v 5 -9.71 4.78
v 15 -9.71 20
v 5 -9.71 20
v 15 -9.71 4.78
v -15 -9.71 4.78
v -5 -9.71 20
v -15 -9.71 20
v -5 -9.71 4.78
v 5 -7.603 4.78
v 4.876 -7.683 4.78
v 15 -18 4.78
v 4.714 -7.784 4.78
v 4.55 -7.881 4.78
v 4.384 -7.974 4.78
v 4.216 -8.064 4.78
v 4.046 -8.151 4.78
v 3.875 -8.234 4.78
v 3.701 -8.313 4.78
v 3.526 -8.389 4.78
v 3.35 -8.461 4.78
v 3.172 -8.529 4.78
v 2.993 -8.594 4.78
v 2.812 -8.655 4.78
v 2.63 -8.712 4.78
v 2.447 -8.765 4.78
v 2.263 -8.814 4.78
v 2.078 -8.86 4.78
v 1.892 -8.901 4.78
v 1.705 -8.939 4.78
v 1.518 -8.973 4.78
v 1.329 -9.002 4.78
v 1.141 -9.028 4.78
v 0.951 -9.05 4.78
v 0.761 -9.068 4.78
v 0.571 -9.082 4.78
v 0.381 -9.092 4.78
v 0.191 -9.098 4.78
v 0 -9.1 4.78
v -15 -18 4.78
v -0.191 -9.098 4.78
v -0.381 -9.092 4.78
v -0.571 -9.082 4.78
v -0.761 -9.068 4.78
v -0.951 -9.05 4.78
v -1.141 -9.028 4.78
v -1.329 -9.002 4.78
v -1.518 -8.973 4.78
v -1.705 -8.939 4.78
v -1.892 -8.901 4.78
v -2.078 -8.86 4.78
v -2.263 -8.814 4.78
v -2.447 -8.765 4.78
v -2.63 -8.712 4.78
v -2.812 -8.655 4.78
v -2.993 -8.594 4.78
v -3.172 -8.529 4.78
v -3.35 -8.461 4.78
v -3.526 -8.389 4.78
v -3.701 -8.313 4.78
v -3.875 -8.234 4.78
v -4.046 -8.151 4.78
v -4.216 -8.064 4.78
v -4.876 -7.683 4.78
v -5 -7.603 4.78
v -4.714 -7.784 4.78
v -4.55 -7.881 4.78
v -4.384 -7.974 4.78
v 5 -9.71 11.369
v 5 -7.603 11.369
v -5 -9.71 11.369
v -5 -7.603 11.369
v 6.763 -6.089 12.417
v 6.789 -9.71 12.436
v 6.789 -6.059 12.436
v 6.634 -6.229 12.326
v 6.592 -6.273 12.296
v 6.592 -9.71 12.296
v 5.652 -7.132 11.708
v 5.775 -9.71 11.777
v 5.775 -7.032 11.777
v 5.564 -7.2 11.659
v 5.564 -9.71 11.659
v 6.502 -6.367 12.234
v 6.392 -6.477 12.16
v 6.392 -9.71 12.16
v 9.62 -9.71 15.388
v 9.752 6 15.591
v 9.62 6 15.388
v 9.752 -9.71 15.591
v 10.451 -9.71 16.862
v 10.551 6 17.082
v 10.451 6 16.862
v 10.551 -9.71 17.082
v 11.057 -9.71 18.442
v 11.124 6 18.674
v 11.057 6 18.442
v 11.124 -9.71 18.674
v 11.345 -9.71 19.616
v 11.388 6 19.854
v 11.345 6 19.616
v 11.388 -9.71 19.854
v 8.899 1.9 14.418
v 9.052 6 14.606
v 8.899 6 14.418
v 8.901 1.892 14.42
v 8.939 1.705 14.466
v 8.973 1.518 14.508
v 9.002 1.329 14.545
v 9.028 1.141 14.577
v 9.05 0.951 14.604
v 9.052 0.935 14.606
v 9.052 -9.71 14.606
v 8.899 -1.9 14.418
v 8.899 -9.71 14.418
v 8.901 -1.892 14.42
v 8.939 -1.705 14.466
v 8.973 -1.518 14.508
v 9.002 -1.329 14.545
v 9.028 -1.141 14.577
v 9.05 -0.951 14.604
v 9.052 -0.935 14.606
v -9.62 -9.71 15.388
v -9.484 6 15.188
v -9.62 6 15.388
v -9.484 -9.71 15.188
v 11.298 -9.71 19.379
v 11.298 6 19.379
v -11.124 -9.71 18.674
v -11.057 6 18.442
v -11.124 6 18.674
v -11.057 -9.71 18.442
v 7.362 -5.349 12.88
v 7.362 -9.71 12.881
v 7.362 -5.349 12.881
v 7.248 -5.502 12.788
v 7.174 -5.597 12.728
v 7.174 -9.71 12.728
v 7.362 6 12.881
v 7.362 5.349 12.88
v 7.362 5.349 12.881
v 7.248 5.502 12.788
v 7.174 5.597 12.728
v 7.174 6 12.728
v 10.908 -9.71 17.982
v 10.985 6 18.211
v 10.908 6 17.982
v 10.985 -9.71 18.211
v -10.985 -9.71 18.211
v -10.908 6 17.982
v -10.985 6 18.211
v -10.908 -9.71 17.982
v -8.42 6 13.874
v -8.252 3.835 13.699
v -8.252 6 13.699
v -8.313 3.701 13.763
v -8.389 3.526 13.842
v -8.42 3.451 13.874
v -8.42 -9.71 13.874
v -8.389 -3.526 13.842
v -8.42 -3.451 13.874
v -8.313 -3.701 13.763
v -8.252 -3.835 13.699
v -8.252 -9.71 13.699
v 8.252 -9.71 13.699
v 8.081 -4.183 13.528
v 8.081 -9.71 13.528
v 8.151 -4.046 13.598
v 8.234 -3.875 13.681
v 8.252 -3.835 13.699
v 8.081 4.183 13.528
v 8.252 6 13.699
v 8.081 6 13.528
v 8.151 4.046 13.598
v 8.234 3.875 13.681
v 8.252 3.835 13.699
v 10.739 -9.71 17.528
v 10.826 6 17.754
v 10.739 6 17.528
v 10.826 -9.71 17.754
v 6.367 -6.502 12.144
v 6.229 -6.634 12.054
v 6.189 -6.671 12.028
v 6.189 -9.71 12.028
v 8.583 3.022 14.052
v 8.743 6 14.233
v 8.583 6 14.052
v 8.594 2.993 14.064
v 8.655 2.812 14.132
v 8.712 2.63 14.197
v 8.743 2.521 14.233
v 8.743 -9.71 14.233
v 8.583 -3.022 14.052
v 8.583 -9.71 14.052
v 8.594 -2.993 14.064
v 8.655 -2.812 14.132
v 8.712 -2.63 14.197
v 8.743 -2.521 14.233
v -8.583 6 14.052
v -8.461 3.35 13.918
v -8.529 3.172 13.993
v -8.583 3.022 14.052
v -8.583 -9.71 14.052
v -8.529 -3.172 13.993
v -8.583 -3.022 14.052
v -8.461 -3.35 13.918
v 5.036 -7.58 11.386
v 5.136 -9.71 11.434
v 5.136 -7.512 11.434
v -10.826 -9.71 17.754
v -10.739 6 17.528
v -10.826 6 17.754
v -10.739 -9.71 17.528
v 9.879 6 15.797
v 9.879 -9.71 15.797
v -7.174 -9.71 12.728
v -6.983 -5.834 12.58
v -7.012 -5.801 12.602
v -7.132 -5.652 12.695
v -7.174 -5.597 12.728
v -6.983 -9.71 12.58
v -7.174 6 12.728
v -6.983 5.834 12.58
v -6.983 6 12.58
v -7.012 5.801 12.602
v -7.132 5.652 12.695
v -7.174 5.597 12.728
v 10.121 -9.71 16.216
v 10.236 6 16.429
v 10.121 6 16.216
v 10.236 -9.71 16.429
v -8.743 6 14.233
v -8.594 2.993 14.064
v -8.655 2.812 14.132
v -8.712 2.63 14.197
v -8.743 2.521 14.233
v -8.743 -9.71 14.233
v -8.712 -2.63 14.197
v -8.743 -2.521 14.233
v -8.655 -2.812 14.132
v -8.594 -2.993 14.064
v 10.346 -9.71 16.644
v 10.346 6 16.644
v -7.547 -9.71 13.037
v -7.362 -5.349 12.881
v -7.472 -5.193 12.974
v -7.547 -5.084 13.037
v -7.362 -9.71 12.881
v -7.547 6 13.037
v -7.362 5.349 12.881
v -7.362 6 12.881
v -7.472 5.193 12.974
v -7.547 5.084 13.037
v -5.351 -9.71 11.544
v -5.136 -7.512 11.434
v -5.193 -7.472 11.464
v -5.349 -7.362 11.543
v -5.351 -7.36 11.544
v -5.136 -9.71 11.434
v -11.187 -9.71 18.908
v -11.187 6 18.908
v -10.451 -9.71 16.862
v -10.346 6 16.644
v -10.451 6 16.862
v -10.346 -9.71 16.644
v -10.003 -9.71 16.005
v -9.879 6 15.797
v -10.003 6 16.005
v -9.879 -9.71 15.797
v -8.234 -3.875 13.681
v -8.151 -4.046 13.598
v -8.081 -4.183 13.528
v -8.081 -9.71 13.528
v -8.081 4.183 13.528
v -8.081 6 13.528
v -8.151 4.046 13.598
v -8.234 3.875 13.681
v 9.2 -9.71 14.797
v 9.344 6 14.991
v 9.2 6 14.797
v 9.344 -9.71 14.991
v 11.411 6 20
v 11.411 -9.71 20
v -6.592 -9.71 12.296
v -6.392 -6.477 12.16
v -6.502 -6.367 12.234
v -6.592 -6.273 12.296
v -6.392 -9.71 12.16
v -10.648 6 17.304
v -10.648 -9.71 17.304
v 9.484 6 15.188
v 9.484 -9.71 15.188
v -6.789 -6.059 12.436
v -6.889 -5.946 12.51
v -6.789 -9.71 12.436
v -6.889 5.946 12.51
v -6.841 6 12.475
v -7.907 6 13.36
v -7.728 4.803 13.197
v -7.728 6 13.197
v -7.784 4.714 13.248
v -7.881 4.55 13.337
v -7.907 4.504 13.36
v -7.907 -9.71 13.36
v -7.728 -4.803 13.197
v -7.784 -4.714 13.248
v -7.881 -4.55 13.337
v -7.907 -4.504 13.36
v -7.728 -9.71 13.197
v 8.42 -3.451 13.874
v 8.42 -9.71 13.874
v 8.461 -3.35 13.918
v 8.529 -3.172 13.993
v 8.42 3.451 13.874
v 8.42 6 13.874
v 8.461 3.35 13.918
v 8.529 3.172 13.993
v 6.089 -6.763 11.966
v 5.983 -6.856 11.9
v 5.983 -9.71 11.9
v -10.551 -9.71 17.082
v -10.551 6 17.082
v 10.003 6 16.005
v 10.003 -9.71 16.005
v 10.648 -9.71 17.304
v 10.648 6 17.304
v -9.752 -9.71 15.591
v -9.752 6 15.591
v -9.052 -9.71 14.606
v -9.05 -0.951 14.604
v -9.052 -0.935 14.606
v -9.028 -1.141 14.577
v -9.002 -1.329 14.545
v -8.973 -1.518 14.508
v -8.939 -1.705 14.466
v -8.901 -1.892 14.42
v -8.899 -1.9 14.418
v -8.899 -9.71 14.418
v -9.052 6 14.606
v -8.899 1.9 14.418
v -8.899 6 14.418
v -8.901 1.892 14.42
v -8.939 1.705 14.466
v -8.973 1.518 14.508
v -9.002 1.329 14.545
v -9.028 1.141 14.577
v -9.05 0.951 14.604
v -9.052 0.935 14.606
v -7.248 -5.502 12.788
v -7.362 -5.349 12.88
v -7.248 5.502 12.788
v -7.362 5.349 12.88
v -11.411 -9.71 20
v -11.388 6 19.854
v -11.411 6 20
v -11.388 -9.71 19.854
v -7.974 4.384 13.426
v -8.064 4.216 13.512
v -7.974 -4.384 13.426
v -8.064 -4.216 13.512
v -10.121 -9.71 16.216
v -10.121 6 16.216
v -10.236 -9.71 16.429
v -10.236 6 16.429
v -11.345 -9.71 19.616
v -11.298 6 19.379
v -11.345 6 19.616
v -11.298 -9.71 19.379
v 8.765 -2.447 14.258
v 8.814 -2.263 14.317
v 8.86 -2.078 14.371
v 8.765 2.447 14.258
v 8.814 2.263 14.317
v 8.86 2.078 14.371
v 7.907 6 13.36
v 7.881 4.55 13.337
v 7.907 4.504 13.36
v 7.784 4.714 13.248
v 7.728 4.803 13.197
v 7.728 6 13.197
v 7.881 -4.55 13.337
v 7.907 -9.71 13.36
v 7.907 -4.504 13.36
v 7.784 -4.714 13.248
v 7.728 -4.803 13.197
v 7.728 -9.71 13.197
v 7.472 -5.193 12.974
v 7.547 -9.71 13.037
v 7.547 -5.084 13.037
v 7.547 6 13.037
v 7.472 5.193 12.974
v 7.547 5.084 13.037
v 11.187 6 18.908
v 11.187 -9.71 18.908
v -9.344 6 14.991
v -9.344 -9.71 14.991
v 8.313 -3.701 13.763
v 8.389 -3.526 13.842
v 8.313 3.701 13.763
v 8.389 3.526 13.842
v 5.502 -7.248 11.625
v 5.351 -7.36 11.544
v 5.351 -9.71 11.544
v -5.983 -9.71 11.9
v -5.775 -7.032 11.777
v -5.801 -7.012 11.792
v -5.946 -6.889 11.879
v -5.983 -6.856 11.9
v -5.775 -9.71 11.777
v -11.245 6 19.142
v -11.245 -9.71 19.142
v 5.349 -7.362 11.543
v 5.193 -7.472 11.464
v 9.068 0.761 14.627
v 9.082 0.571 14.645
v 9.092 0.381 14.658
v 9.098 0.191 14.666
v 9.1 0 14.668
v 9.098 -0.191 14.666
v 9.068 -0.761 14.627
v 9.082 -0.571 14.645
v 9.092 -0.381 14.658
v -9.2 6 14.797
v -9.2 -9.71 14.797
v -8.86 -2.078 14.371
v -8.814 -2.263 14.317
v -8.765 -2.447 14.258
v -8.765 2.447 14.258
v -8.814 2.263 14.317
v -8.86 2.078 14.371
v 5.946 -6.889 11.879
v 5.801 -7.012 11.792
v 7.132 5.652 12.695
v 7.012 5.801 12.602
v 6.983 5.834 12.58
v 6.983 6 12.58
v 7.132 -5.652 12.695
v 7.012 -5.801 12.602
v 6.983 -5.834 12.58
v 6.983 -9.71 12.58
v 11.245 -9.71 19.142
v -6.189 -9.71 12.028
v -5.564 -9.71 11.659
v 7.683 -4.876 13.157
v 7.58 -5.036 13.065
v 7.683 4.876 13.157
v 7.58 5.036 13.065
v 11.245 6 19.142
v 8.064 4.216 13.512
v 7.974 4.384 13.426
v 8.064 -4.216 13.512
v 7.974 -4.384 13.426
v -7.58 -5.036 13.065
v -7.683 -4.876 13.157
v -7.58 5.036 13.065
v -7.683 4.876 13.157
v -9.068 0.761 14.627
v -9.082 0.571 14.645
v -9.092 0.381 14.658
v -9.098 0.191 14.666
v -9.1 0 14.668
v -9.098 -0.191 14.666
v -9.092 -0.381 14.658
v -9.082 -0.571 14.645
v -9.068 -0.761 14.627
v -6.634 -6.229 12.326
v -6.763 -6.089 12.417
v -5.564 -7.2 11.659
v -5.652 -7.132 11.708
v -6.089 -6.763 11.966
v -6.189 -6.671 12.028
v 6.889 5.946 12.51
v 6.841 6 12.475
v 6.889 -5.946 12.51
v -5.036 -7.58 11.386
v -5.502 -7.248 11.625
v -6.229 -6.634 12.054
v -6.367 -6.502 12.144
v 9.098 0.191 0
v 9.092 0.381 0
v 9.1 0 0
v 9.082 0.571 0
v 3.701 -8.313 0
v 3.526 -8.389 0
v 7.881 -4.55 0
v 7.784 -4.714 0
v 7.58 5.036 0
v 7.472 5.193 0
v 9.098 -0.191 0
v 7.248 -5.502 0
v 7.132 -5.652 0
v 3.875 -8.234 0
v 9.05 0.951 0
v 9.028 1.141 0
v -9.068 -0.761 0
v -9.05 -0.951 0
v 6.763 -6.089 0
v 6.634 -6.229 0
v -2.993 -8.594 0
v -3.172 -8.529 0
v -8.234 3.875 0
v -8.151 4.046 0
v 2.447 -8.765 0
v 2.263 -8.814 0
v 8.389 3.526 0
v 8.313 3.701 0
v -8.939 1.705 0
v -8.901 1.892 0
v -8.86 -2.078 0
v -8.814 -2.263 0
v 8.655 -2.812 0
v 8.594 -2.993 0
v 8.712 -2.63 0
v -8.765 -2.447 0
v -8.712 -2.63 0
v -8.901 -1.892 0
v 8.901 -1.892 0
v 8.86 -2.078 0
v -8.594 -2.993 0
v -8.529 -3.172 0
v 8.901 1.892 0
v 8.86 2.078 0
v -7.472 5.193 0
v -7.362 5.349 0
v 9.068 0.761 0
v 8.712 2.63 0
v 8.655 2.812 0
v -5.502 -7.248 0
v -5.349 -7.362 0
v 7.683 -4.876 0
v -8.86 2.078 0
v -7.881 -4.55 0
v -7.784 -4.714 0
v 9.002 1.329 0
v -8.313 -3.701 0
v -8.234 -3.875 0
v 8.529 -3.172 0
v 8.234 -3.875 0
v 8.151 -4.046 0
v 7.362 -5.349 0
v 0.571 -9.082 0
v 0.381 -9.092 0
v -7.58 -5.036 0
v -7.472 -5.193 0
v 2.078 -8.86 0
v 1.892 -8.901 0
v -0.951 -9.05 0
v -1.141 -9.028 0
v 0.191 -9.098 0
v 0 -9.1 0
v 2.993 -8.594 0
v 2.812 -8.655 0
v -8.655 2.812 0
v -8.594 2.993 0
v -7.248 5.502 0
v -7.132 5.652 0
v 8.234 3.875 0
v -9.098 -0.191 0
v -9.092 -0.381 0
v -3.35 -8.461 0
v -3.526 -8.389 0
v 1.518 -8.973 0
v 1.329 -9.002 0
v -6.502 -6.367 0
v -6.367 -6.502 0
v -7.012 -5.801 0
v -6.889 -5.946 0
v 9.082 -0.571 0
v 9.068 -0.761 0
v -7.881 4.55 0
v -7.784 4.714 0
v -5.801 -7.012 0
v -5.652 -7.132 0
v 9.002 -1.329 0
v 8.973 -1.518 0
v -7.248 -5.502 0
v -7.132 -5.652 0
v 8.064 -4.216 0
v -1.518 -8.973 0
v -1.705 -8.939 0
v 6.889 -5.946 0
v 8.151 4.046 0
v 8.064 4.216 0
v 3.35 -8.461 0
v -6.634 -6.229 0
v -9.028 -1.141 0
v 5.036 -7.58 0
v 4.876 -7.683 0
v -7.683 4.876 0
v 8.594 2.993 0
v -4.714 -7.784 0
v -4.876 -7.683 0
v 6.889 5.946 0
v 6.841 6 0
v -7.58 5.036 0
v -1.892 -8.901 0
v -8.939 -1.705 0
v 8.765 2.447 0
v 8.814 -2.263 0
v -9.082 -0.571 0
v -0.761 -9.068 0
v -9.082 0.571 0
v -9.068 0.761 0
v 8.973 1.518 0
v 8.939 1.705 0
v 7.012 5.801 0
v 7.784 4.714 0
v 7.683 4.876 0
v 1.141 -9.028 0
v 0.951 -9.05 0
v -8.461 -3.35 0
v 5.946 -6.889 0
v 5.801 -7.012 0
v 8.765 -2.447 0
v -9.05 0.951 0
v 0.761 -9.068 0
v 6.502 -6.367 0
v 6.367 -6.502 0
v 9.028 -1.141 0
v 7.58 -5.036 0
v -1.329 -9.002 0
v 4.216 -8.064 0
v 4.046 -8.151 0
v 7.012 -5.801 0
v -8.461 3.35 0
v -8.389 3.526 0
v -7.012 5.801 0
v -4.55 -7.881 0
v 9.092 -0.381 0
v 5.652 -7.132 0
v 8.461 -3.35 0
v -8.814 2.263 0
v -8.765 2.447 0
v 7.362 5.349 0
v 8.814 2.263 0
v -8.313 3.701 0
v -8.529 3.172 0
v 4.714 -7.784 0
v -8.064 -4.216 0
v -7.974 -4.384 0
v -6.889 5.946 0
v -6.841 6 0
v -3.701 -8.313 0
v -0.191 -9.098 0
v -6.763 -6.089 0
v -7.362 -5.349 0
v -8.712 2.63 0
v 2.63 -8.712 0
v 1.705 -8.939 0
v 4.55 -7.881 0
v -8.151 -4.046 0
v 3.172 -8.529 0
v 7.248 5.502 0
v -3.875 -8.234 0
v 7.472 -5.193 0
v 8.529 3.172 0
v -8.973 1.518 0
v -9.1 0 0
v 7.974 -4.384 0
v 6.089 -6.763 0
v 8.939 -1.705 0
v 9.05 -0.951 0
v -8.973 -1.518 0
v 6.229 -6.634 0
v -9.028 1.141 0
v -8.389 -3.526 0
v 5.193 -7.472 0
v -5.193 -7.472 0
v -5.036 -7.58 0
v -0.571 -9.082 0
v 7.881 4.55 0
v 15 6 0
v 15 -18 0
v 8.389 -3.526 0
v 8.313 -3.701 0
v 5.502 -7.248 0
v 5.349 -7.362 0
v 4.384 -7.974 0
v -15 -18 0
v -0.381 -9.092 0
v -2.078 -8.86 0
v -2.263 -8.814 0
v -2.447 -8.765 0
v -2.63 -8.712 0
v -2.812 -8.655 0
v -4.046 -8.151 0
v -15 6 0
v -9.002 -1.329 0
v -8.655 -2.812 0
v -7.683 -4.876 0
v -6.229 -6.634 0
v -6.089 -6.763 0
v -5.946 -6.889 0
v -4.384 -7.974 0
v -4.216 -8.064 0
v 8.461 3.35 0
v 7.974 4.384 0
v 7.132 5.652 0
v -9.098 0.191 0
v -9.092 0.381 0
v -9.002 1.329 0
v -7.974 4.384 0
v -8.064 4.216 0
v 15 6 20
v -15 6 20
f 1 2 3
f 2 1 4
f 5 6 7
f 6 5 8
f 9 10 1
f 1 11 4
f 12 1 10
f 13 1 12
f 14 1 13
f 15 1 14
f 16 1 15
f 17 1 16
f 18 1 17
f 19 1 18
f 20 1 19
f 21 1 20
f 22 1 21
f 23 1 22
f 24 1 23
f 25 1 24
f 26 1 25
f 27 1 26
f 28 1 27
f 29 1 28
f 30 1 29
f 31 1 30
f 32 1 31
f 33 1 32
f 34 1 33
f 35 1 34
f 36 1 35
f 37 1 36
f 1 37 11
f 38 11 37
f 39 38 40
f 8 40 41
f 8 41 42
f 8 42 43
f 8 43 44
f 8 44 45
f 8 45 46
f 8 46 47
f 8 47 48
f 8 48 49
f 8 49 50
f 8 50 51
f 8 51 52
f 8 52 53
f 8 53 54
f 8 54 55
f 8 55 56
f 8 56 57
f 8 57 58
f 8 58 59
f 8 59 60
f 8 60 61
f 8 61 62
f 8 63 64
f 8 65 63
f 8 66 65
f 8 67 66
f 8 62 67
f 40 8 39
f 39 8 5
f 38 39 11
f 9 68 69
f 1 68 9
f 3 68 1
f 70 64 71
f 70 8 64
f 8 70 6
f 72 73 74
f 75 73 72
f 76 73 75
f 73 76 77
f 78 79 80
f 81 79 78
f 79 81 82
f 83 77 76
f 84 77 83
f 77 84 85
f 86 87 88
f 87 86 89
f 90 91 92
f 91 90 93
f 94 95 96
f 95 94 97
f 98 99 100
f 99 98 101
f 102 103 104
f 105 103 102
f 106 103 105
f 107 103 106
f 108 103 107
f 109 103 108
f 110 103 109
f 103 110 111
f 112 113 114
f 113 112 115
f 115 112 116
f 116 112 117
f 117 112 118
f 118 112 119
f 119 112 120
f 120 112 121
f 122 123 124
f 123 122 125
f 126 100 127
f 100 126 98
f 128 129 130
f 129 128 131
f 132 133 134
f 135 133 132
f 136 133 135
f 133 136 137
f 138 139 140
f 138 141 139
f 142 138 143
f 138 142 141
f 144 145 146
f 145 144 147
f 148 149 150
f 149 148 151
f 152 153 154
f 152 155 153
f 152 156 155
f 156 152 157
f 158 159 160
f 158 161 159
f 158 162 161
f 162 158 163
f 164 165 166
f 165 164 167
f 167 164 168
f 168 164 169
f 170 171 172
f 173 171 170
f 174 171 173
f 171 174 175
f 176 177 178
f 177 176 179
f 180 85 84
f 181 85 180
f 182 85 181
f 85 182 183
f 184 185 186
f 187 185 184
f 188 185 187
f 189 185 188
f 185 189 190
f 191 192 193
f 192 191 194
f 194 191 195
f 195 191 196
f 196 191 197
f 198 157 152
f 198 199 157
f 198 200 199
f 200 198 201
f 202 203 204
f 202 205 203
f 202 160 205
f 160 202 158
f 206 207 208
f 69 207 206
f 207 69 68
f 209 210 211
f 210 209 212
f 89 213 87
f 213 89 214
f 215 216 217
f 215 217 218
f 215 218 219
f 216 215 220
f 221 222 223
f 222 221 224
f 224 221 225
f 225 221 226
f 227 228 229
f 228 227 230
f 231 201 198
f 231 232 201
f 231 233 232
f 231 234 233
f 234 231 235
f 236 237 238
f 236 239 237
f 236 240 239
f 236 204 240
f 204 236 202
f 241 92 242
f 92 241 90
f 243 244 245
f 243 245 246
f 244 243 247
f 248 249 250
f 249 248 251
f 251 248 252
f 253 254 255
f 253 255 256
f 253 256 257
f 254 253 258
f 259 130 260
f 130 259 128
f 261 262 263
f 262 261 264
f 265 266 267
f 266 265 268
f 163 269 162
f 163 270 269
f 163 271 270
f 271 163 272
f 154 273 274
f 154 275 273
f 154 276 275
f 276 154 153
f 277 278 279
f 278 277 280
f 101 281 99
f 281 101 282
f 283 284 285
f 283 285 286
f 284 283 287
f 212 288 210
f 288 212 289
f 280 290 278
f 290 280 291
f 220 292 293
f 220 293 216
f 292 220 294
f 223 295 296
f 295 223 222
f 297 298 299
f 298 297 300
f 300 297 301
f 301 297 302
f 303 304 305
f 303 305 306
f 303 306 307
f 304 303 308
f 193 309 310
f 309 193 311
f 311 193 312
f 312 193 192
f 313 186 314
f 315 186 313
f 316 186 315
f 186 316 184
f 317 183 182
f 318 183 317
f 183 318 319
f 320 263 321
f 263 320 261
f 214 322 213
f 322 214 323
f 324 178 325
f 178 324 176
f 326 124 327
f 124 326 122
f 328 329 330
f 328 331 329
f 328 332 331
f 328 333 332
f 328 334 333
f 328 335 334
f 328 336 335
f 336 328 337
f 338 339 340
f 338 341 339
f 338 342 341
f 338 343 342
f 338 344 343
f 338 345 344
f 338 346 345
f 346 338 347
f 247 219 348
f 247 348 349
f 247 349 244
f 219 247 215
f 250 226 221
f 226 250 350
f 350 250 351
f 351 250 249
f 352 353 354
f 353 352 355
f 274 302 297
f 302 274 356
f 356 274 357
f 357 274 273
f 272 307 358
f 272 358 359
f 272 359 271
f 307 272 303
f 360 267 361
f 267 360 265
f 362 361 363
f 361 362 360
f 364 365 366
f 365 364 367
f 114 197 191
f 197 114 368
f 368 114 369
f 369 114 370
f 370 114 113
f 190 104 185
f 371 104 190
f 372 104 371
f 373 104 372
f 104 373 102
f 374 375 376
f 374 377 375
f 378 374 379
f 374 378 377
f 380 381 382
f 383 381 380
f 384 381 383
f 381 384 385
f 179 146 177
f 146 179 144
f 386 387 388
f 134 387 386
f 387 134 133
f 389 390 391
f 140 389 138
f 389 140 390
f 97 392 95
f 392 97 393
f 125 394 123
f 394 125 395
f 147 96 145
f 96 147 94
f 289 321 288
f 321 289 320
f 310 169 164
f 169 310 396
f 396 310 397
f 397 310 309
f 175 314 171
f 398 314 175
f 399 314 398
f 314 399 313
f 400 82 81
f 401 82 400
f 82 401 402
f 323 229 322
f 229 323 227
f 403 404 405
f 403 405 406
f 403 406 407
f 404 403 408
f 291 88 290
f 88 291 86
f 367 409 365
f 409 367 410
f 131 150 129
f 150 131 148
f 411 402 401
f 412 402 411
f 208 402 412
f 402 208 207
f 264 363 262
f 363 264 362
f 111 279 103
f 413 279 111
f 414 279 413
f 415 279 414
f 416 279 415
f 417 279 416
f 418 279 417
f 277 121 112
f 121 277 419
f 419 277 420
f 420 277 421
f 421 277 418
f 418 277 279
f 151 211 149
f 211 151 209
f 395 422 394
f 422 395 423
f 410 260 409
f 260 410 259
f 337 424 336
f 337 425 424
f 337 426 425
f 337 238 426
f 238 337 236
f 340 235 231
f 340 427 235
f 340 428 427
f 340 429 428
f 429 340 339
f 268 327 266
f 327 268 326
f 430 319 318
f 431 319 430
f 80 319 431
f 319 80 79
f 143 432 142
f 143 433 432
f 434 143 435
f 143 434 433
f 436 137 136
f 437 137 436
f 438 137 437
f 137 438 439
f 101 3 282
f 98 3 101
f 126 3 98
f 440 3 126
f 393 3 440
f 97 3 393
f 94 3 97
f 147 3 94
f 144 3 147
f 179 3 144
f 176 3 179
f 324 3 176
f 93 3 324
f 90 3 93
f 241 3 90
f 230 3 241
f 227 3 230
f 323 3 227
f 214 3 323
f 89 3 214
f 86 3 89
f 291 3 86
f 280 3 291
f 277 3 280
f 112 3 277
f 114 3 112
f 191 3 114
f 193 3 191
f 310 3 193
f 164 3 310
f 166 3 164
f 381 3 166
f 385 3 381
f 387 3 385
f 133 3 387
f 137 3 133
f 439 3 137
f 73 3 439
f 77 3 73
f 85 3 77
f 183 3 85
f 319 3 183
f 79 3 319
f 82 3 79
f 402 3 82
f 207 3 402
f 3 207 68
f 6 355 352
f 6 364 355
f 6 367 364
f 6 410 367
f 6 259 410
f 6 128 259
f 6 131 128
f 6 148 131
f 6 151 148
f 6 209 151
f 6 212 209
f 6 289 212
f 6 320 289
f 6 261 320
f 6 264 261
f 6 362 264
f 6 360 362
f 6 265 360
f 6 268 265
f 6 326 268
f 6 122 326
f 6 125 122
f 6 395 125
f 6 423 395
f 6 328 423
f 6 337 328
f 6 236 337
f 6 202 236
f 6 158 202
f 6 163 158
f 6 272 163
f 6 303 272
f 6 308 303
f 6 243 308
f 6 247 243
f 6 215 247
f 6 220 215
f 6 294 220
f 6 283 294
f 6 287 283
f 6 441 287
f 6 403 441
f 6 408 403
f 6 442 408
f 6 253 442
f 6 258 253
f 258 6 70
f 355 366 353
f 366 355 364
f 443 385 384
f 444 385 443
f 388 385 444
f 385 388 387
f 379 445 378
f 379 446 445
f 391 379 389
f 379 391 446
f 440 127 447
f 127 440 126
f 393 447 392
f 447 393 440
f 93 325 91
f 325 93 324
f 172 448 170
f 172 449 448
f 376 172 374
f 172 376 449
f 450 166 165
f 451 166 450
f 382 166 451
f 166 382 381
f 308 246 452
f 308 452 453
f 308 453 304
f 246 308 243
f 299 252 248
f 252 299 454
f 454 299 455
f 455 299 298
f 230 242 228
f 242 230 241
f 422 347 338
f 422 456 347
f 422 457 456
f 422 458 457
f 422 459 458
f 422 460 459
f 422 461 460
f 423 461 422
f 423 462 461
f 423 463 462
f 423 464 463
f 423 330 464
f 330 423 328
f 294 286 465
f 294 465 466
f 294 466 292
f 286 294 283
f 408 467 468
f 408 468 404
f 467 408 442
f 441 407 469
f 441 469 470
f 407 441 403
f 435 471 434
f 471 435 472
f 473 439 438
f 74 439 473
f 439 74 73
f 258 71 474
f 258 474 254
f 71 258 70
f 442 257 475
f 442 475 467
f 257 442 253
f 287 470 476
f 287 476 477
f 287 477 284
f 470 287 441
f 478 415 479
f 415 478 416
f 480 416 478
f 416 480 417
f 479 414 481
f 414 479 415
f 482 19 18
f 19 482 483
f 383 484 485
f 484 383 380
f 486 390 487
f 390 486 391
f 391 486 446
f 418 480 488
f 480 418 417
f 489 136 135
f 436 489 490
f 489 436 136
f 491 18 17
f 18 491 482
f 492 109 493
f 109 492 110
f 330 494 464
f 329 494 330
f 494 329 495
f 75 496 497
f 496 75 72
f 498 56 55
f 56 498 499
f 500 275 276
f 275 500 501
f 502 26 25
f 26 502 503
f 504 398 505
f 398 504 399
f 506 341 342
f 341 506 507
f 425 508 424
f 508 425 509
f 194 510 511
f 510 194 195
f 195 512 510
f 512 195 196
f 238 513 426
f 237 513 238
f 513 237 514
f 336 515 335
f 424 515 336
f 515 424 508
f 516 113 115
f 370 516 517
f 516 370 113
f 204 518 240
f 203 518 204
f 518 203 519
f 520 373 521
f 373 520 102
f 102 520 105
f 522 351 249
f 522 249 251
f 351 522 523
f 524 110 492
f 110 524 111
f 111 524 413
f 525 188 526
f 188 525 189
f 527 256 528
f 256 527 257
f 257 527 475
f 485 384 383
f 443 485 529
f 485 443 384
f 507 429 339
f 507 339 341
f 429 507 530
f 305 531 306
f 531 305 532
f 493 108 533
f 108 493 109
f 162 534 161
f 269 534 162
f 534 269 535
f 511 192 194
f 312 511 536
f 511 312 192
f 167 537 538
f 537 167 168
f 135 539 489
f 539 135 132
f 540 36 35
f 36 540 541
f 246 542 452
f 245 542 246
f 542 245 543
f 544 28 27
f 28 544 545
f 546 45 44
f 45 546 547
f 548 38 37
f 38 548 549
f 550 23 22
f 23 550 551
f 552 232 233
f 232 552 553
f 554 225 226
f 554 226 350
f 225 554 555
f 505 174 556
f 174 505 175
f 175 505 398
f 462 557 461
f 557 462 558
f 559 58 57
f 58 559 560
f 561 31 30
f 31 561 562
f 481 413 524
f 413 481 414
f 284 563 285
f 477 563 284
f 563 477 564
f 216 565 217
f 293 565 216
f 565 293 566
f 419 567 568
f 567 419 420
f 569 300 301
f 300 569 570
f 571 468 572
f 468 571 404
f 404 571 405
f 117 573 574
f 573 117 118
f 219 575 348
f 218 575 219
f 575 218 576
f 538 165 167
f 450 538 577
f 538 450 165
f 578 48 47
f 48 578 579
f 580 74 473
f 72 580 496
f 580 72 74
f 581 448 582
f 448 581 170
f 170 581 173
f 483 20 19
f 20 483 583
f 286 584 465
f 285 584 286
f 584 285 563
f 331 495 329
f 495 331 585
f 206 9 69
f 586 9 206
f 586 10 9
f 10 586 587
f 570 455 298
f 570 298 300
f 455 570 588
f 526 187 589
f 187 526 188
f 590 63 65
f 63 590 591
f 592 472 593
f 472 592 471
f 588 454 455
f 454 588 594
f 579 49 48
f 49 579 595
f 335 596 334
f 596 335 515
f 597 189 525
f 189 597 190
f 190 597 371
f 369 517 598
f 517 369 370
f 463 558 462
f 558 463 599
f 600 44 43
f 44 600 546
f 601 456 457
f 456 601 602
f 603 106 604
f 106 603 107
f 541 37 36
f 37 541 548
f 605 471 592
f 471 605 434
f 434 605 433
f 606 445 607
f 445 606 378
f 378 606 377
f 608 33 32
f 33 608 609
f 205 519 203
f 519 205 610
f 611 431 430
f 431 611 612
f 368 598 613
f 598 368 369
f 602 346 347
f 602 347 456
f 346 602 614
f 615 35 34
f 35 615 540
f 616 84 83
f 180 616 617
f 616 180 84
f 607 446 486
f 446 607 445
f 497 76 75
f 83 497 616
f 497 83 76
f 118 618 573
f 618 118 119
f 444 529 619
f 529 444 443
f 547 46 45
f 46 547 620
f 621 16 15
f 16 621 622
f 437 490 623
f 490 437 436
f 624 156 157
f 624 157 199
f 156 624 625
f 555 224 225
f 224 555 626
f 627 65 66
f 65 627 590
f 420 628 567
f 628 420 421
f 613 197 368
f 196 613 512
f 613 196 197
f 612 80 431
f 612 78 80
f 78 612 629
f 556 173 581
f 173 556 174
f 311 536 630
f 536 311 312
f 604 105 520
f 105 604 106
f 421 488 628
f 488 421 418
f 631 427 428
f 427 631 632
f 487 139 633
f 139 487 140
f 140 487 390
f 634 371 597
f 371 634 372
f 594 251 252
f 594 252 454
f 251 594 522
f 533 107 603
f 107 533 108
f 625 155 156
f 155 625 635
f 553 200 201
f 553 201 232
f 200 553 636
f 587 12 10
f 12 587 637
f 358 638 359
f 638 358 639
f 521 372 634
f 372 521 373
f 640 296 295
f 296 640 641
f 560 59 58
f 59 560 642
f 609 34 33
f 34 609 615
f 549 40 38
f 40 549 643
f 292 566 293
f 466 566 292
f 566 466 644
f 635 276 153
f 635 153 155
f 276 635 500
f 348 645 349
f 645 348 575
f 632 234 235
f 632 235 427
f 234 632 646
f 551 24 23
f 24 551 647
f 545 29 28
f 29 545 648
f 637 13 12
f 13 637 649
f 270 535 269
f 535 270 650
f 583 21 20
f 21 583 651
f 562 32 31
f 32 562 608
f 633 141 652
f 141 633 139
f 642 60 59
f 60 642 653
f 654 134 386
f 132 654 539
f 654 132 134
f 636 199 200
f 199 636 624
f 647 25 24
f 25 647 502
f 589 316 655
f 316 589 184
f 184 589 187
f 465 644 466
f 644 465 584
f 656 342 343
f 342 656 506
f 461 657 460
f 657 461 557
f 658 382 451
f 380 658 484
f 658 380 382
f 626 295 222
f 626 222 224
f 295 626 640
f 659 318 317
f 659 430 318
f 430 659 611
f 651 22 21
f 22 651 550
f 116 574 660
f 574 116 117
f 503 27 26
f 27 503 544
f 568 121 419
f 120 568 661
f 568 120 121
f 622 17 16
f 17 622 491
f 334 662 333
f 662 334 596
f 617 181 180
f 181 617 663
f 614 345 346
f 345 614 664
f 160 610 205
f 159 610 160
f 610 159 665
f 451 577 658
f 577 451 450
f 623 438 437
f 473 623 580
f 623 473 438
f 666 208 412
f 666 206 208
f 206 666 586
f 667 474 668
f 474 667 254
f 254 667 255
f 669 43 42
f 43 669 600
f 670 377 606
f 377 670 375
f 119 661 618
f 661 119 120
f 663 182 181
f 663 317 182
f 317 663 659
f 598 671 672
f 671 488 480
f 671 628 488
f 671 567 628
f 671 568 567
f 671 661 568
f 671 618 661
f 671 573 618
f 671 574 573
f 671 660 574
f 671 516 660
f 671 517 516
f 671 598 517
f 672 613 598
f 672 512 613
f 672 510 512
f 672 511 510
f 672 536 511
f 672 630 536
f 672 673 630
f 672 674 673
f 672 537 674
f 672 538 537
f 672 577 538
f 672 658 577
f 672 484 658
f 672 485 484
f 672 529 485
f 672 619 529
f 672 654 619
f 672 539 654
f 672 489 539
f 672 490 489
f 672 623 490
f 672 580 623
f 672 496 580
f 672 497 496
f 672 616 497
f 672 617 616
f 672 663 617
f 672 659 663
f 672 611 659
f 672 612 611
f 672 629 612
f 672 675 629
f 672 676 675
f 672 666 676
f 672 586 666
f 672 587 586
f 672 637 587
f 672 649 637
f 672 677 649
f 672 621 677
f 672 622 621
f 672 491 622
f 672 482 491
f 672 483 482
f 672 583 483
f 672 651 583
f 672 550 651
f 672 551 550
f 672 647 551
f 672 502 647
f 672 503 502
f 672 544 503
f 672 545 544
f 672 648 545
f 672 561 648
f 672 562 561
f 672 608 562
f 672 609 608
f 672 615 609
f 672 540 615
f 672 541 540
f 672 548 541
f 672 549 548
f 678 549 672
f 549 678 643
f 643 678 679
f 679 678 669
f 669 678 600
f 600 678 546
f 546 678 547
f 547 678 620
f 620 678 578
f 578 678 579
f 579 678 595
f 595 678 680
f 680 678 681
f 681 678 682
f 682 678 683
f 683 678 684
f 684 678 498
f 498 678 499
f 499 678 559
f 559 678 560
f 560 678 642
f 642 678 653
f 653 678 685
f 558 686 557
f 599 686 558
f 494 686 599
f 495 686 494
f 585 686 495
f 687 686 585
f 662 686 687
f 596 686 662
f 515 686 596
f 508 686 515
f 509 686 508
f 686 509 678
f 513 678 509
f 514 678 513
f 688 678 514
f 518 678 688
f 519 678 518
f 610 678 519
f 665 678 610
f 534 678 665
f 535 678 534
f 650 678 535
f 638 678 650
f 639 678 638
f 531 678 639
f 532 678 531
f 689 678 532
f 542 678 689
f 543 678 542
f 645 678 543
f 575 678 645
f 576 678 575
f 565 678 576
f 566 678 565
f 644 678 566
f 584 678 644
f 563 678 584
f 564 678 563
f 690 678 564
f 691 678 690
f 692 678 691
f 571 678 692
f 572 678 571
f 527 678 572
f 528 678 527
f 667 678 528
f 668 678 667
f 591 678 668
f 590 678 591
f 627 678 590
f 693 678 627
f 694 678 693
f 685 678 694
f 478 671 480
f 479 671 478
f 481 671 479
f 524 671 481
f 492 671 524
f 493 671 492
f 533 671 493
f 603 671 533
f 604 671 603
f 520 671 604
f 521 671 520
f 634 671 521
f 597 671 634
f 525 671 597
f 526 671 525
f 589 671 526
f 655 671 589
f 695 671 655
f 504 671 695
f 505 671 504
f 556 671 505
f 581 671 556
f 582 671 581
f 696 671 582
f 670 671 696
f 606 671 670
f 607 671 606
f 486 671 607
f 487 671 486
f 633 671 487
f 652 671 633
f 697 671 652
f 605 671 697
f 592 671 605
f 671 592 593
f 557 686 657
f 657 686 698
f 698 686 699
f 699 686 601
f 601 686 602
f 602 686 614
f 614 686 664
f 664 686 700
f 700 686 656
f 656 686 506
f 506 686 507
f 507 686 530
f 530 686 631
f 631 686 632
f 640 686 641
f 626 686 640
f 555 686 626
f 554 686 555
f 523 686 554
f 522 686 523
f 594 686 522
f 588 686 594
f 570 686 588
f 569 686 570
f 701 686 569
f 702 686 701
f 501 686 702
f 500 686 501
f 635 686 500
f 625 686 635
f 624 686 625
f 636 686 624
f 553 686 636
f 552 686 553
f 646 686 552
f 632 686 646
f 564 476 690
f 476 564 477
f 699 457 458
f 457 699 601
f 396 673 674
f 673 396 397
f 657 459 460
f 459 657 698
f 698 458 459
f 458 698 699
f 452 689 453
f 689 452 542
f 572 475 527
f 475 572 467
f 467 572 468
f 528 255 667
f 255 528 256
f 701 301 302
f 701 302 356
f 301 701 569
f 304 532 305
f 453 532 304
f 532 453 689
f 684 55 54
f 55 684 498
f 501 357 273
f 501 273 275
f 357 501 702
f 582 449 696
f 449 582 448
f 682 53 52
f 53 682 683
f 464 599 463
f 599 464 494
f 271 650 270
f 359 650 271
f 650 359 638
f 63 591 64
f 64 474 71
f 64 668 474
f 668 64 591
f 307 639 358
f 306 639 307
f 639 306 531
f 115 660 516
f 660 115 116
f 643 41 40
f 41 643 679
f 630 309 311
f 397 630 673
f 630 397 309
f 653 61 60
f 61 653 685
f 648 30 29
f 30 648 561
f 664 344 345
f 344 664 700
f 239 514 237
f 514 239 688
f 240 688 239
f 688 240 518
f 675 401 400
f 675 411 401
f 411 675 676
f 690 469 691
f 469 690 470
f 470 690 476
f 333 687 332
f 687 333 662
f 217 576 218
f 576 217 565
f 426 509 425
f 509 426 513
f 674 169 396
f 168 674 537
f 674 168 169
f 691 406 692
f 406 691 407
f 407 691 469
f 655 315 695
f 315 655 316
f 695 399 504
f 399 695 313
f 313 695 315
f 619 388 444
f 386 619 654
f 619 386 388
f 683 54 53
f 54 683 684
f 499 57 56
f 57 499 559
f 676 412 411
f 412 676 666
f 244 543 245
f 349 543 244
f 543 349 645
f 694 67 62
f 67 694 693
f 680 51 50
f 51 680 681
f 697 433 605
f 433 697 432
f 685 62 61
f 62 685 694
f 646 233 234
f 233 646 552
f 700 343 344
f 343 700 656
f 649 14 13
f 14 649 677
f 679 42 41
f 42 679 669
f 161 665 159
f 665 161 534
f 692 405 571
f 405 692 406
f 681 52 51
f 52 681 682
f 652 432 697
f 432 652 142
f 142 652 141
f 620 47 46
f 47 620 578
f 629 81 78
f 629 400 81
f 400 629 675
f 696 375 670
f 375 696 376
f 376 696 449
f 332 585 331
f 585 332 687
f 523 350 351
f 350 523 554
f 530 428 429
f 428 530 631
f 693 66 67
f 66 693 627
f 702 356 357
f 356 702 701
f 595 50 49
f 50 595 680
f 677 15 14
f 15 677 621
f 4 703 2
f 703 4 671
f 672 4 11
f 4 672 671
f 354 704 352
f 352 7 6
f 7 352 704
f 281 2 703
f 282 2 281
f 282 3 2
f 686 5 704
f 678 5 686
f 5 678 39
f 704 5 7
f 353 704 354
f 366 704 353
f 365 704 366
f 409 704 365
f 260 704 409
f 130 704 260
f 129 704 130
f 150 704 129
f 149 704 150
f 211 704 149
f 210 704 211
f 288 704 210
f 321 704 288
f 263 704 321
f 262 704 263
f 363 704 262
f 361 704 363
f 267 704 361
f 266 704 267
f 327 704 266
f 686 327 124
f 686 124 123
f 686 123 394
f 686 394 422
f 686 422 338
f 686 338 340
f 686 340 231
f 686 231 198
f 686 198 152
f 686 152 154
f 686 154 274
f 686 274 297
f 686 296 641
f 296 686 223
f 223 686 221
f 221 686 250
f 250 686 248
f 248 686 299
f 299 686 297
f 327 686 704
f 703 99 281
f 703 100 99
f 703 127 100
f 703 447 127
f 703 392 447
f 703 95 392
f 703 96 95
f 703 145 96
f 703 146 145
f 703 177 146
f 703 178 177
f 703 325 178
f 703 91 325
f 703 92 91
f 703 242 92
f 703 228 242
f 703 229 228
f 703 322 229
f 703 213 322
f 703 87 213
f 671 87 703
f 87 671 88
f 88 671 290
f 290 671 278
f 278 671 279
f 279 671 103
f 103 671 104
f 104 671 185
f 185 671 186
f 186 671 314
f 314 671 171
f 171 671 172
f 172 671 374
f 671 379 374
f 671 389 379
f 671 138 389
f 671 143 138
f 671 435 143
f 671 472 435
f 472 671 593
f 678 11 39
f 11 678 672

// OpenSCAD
$fn = 300;

out_thread_h = 10.84;
out_thread_r = 10.33;
middle_h = 42.64;
middle_r = 9.1;
in_thrad_h = 10.21;
in_thread_r = 13.07;
overall_h = 65.88;
bent_middle_h = overall_h - (out_thread_h+middle_h+in_thrad_h);

rot_mid_h = 18.81;
rot_cube_h = 9.96;

module valve(){
     cylinder(r = out_thread_r, h=out_thread_h);
     translate([0,0,out_thread_h]){ //above outter thread
             translate([0,0,21.78]){//middle of the valve
                rotate([90,0,0]){
                  translate([0,0,-middle_r]){
                      cylinder(d=23.1,h=rot_mid_h);
                    translate([0,0,rot_mid_h]){
                        translate([0,0,rot_cube_h/2])cube([34,34,rot_cube_h], center=true);
                         cube([10,34,12], center = true);
                    }
                    }
              }
         }
         cylinder(r=middle_r, h=middle_h);
         translate([0,0,middle_h]){
             cylinder(r1=middle_r, r2=out_thread_r, h= bent_middle_h);
             translate([0,0,bent_middle_h])
                 cylinder(r=out_thread_r, h=out_thread_h);
         }
     }
}
translate([0,0,-out_thread_h]);
c_x = 30;
c_y = 24;
c_z = 20;
difference(){
    translate([-c_x/2,-c_y+6,0])
    cube([c_x,c_y,c_z]);
    translate([0,0,-out_thread_h])
    valve();
    
    
}
